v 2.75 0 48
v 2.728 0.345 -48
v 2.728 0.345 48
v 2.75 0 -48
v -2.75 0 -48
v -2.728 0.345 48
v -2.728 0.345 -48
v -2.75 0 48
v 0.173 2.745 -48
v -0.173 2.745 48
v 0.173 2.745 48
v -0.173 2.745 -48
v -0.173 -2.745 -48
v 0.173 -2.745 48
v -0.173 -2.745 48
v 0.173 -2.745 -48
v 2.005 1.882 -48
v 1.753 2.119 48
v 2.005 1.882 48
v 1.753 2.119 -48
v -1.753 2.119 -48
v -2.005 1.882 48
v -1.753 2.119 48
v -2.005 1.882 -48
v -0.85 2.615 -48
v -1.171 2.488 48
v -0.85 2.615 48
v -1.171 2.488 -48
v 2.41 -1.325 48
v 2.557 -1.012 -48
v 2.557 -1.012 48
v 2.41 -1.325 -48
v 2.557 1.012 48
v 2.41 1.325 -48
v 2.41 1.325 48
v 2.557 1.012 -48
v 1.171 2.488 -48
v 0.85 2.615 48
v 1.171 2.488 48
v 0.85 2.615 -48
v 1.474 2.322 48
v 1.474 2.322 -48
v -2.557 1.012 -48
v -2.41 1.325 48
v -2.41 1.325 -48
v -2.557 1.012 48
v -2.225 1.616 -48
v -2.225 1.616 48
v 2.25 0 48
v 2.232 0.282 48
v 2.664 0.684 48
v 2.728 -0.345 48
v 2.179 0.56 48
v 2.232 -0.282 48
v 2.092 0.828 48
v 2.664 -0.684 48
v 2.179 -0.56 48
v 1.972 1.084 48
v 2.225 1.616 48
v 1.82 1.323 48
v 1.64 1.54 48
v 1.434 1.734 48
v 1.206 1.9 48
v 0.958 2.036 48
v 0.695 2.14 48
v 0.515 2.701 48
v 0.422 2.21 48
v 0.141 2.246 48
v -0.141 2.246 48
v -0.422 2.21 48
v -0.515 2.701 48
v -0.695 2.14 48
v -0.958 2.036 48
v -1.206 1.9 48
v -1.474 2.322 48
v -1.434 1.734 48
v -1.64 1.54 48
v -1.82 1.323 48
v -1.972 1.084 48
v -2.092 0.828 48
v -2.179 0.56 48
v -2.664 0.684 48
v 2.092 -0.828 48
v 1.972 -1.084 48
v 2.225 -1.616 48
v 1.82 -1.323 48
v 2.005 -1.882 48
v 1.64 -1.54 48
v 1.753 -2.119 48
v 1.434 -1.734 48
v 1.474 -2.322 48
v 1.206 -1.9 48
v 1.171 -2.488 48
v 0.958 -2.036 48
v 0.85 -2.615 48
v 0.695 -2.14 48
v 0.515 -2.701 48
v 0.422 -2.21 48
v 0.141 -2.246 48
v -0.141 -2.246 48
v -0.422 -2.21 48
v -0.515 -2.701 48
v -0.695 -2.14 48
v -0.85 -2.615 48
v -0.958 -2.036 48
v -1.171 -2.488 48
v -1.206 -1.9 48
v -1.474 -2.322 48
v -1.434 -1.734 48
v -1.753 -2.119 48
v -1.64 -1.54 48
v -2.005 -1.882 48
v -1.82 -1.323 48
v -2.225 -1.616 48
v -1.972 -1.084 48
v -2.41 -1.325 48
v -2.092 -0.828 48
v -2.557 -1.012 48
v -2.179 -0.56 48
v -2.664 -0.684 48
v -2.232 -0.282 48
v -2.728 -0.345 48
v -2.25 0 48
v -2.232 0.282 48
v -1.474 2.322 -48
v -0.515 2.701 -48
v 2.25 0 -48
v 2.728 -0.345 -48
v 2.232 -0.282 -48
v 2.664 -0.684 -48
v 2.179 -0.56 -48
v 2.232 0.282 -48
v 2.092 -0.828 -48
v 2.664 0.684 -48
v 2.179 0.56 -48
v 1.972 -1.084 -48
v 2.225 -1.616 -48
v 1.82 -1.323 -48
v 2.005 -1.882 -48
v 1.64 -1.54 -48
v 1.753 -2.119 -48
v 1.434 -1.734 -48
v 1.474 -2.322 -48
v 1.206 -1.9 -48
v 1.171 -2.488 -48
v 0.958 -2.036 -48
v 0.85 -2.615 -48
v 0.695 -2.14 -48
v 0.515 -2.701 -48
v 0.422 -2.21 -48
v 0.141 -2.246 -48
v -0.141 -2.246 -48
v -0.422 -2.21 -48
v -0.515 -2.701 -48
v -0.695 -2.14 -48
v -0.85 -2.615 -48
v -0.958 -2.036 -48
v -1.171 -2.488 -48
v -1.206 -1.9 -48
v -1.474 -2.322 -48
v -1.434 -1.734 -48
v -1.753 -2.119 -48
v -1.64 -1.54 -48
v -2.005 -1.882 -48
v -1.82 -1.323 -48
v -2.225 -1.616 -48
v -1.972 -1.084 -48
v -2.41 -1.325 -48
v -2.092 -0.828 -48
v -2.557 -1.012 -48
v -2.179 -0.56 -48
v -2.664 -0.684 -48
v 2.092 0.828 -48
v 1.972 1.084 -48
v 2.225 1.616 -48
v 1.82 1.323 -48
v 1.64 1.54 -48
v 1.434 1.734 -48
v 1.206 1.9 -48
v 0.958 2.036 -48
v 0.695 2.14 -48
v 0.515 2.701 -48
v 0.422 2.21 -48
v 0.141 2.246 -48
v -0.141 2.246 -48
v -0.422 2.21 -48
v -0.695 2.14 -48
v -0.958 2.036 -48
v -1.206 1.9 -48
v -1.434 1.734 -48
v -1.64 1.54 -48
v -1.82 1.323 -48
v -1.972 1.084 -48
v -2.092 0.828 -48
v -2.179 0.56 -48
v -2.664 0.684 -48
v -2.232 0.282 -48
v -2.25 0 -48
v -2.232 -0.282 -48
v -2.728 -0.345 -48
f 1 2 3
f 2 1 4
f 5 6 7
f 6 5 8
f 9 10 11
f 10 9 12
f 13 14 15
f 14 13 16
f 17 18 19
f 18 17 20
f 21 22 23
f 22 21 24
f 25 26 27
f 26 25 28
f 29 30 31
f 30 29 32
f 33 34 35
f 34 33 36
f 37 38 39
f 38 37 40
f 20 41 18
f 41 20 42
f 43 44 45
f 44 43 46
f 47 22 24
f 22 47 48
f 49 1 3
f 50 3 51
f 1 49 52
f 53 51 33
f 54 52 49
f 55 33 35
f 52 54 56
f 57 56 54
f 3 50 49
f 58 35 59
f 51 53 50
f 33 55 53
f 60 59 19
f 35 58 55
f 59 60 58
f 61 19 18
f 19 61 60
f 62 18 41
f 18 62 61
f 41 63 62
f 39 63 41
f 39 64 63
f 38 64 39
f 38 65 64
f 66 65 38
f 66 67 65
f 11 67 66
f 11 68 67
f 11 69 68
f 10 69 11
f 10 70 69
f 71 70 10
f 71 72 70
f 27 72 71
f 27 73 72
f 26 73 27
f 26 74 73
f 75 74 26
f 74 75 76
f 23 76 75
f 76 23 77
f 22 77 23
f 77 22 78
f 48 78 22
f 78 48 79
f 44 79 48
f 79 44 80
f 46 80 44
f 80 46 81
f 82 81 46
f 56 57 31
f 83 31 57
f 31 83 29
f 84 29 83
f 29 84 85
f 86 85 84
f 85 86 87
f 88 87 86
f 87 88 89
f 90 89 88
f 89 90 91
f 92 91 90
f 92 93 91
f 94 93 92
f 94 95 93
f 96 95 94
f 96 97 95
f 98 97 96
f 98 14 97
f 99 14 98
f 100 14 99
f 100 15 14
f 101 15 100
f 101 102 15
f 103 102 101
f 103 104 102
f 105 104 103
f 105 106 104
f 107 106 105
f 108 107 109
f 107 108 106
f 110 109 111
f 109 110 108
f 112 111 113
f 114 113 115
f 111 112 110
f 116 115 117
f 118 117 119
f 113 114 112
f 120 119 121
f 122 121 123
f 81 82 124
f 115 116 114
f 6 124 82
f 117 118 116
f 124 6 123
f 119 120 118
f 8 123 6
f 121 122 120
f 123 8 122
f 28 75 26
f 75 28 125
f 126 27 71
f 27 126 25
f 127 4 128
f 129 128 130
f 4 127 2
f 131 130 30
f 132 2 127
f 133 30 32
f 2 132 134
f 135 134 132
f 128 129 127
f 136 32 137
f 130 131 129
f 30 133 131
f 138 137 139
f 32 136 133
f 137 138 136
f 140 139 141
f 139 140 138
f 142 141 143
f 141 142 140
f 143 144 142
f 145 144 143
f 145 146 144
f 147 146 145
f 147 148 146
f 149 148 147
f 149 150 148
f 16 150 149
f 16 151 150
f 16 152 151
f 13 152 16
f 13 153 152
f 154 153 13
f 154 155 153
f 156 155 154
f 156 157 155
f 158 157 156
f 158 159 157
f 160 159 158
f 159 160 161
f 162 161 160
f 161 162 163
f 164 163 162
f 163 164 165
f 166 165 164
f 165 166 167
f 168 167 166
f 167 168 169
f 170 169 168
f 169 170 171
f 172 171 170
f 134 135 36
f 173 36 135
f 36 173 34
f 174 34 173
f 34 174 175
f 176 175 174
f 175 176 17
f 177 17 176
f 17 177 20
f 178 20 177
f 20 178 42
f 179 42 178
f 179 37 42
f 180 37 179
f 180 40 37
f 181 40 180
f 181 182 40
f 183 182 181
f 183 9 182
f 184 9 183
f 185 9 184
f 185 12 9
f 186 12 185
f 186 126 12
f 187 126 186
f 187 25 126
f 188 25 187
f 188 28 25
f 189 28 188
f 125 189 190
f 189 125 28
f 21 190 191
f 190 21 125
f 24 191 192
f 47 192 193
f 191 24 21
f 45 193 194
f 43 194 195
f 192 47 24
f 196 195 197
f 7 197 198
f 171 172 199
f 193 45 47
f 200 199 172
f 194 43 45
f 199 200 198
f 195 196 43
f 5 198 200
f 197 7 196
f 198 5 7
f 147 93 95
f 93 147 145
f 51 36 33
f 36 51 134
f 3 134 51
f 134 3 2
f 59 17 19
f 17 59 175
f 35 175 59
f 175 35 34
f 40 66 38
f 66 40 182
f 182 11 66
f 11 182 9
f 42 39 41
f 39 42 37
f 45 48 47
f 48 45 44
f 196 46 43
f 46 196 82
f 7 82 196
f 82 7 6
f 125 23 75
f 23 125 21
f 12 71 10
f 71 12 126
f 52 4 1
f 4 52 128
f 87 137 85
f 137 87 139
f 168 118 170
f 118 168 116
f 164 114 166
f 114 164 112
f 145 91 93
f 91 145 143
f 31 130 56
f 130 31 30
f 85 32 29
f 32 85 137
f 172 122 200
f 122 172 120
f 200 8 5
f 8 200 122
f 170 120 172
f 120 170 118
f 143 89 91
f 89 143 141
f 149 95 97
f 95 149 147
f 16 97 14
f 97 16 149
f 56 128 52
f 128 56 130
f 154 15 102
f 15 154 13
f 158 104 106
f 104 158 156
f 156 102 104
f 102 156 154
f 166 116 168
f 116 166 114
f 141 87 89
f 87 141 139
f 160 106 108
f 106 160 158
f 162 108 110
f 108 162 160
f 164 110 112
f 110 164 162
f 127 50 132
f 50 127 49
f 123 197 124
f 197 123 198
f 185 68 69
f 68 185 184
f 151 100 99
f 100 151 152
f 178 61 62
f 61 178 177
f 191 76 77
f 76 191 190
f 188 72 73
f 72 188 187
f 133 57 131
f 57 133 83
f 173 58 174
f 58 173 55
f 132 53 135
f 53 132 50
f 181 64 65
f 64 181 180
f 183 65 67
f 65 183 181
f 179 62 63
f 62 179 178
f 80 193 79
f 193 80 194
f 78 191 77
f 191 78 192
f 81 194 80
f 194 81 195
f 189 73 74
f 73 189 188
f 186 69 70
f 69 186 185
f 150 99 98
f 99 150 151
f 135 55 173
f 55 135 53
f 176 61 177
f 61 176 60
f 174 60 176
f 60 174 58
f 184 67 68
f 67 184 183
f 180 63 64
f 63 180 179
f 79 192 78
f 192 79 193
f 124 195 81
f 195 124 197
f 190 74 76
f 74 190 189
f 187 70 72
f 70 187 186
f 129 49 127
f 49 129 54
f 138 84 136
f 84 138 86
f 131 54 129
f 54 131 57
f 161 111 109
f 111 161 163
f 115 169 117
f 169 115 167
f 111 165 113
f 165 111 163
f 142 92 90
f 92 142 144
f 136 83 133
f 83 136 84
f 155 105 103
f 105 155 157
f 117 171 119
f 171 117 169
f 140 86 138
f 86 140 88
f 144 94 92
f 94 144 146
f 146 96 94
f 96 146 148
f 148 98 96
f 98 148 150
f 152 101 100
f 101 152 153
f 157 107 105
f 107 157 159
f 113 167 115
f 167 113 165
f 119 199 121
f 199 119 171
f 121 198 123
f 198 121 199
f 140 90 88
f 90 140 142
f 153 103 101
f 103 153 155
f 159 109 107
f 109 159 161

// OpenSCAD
$fn = 50;


difference() {
	union() {
		translate(v = [0, 0, -48.0000000000]) {
			cylinder(h = 96, r = 2.7500000000);
		}
	}
	union() {
		translate(v = [0, 0, -100.0000000000]) {
			cylinder(h = 200, r = 2.2500000000);
		}
	}
}
